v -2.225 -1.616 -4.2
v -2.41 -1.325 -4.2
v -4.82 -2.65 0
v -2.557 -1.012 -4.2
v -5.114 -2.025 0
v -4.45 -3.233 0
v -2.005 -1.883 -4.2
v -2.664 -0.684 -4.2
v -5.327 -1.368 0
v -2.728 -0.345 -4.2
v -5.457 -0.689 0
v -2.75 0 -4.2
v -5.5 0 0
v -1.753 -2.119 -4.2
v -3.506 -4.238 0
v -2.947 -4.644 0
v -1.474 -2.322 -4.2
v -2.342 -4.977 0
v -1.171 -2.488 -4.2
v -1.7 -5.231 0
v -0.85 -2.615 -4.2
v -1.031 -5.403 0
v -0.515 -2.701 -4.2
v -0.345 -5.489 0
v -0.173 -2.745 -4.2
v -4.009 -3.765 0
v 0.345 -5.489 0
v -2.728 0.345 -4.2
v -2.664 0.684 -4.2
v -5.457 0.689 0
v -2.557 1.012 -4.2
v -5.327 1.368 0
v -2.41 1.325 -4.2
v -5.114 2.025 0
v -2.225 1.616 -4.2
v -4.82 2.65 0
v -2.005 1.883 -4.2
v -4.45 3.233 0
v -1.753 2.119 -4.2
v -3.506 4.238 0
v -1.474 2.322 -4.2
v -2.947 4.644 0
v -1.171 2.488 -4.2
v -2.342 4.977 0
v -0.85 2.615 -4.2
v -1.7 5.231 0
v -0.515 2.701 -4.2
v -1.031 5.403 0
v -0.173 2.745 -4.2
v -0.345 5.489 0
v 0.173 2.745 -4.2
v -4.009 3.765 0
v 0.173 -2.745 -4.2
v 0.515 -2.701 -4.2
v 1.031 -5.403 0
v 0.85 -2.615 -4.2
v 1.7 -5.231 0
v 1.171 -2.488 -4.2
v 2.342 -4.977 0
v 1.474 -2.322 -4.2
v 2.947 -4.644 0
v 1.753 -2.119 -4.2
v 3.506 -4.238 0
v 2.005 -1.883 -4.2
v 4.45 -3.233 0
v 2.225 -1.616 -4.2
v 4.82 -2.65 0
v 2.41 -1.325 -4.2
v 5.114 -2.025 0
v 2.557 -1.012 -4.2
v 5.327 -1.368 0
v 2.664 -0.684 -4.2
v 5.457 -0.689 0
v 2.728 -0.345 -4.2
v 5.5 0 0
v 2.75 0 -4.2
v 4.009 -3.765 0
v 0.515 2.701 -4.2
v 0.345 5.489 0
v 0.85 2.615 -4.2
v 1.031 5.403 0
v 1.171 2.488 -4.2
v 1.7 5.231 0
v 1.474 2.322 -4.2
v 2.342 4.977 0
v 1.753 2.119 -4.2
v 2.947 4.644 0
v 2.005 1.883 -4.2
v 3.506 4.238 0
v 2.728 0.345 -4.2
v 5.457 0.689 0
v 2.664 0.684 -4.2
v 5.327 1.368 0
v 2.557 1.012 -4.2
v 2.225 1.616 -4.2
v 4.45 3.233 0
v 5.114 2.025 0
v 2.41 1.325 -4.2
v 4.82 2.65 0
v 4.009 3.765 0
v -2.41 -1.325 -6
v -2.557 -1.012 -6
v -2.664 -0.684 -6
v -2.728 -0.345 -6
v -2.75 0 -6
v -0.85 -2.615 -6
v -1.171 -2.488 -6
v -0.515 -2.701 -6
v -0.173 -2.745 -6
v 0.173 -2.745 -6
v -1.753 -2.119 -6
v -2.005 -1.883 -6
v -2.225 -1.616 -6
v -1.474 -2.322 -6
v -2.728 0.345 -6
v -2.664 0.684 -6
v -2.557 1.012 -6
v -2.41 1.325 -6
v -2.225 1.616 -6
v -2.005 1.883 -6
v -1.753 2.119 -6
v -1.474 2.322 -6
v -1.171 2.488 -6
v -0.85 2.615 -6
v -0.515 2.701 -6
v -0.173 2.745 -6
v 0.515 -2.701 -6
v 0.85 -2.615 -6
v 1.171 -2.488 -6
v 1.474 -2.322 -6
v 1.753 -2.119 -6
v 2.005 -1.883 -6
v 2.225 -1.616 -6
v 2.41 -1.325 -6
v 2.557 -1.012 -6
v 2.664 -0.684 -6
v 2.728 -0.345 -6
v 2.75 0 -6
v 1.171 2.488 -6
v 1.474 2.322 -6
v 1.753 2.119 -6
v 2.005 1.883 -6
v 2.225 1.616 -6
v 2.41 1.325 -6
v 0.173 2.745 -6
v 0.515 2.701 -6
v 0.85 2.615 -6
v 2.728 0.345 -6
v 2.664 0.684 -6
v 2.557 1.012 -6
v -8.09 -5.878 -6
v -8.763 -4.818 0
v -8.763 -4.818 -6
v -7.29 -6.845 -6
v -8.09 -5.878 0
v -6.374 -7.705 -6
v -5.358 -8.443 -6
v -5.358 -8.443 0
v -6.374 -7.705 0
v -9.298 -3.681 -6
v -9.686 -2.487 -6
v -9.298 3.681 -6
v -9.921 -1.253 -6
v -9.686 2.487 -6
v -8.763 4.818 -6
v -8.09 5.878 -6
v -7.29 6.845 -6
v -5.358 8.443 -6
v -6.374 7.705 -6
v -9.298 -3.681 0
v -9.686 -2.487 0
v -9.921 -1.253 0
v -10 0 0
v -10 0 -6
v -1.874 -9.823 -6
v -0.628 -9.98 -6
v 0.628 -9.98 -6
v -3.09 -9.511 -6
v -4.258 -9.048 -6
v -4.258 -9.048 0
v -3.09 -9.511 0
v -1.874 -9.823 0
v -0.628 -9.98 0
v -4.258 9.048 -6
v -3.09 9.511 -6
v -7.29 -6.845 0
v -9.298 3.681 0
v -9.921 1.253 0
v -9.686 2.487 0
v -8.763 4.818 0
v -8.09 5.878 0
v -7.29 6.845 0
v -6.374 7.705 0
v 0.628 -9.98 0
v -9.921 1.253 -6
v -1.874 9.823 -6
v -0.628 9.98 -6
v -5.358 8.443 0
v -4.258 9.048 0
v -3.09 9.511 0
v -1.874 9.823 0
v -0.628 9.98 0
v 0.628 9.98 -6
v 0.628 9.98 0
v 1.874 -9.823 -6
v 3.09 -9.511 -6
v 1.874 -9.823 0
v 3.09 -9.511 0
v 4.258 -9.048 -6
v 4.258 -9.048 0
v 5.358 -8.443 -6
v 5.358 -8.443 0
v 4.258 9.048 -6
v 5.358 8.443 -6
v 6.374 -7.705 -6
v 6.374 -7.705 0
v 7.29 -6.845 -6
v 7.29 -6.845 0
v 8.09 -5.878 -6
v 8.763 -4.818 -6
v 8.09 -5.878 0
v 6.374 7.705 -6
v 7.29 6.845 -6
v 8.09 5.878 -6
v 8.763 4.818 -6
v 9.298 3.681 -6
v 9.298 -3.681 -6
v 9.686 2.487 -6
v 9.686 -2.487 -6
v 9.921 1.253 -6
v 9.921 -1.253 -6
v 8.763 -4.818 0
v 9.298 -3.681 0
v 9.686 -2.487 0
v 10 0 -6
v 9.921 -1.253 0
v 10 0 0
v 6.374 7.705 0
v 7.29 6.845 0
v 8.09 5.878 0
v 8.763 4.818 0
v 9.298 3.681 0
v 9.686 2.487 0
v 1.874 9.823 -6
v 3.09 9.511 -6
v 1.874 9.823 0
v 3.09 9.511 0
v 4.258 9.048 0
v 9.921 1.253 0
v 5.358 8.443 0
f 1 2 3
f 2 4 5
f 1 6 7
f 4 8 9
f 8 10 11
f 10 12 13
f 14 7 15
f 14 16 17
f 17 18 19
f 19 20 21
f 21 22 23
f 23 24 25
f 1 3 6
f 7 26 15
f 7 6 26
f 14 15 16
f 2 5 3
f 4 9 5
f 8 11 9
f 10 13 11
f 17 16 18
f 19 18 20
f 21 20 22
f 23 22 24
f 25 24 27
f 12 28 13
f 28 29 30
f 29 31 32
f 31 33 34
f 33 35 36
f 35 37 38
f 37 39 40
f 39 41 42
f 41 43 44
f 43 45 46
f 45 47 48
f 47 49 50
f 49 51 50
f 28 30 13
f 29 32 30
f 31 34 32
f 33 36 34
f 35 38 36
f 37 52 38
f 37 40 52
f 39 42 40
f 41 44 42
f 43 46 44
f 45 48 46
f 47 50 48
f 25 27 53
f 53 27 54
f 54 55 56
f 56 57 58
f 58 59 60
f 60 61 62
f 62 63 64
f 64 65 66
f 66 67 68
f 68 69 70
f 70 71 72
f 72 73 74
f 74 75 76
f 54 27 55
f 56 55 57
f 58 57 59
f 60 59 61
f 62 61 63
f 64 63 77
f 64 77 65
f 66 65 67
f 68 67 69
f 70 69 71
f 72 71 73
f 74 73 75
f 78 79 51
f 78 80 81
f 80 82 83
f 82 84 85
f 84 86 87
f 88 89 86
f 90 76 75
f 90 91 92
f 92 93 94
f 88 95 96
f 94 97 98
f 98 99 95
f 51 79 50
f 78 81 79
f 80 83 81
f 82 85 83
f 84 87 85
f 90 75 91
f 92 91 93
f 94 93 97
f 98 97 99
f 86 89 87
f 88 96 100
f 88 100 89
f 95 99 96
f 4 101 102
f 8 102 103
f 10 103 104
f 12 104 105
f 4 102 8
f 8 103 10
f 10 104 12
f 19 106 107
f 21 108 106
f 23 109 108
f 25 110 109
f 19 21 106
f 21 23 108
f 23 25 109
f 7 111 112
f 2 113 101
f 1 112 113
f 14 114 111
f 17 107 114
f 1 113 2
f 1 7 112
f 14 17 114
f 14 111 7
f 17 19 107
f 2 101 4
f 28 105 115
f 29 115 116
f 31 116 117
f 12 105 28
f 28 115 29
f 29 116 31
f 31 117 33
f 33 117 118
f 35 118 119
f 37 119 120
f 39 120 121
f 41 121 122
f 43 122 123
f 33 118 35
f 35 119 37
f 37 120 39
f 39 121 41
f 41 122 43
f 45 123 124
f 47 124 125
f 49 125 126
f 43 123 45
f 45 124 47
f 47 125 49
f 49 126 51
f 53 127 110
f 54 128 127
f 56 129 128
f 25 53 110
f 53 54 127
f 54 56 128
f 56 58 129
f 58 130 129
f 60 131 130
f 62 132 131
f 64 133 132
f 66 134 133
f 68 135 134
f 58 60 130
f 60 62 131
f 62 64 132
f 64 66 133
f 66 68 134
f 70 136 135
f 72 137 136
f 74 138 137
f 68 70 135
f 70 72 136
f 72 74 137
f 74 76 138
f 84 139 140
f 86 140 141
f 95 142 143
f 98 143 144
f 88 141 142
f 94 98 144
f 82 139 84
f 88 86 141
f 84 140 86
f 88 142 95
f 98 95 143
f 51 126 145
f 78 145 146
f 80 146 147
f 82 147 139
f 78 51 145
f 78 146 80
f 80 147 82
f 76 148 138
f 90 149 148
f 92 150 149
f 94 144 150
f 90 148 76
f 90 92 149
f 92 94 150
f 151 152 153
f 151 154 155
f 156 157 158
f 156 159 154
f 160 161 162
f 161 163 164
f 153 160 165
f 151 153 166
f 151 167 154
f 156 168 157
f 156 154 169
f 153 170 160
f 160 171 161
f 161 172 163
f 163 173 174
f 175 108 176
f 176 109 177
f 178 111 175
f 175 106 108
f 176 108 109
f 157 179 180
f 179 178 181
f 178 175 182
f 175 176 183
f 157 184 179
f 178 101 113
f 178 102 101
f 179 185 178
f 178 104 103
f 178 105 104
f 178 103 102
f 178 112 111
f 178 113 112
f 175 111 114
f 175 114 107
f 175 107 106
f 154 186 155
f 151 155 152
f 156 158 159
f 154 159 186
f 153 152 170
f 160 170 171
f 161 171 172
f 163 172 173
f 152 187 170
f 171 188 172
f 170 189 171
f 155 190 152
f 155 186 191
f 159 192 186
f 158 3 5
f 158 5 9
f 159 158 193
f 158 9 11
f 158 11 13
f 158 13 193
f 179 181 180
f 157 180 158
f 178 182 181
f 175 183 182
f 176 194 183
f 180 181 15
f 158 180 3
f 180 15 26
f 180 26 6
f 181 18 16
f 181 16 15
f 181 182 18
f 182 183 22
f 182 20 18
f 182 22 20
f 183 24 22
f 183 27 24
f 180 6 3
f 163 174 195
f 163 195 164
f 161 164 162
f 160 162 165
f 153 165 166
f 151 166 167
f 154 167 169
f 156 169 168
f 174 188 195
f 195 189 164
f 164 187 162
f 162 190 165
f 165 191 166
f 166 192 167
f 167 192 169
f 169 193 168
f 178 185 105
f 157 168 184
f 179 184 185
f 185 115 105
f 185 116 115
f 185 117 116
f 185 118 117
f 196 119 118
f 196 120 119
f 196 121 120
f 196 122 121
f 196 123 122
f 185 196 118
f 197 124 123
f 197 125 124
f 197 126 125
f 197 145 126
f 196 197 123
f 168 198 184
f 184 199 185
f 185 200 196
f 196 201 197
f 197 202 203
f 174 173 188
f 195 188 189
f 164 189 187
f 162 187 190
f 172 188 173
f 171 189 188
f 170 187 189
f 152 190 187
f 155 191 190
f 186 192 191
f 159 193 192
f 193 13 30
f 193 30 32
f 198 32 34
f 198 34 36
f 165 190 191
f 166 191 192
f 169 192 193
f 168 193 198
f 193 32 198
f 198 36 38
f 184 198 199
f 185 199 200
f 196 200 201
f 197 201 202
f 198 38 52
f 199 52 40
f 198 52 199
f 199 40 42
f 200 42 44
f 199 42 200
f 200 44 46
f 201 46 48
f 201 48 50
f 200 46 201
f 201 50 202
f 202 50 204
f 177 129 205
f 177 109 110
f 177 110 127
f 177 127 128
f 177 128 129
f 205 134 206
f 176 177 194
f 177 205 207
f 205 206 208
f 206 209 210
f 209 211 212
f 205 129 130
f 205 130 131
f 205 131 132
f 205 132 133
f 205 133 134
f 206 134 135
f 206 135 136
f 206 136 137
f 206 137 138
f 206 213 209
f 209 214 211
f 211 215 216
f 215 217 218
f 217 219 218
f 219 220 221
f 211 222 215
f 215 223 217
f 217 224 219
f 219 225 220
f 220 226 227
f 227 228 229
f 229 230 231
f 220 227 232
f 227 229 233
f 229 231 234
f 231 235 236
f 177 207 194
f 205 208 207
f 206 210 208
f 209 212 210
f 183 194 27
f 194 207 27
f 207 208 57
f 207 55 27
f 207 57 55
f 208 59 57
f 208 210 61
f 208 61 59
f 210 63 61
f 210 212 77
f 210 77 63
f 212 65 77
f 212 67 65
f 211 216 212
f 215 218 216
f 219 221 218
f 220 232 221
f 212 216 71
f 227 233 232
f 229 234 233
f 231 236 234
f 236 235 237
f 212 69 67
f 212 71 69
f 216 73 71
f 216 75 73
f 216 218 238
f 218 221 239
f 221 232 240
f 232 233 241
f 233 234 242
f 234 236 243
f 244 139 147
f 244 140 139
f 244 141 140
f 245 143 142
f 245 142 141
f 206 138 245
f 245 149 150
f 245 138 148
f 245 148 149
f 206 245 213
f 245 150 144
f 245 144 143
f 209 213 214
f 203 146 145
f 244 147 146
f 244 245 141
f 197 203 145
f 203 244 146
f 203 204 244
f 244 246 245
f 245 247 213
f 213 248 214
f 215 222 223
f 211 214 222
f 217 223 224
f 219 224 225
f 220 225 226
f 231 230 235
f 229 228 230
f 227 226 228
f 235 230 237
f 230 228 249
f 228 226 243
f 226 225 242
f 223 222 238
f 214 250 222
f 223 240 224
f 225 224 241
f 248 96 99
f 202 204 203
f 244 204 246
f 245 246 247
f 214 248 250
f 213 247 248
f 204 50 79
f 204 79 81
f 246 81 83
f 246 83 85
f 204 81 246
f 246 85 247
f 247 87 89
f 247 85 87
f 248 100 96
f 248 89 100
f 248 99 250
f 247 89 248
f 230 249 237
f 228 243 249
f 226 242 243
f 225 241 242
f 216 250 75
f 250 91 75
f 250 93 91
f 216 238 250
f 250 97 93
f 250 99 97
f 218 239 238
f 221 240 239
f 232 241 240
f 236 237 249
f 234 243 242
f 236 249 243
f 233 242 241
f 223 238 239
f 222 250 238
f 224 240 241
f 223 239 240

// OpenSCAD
$fn = 50;


difference() {
	union() {
		translate(v = [0, 0, -6.0000000000]) {
			cylinder(h = 6, r = 10.0000000000);
		}
	}
	union() {
		translate(v = [0, 0, 0]) {
			rotate(a = [0, 0, 0]) {
				difference() {
					union() {
						translate(v = [0, 0, -9.0000000000]) {
							cylinder(h = 9, r = 2.2500000000);
						}
						translate(v = [0, 0, -4.2000000000]) {
							cylinder(h = 4.2000000000, r1 = 2.7500000000, r2 = 5.5000000000);
						}
						translate(v = [0, 0, -9.0000000000]) {
							cylinder(h = 9, r = 2.7500000000);
						}
						translate(v = [0, 0, -9.0000000000]) {
							cylinder(h = 9, r = 2.2500000000);
						}
					}
					union();
				}
			}
		}
	}
}
